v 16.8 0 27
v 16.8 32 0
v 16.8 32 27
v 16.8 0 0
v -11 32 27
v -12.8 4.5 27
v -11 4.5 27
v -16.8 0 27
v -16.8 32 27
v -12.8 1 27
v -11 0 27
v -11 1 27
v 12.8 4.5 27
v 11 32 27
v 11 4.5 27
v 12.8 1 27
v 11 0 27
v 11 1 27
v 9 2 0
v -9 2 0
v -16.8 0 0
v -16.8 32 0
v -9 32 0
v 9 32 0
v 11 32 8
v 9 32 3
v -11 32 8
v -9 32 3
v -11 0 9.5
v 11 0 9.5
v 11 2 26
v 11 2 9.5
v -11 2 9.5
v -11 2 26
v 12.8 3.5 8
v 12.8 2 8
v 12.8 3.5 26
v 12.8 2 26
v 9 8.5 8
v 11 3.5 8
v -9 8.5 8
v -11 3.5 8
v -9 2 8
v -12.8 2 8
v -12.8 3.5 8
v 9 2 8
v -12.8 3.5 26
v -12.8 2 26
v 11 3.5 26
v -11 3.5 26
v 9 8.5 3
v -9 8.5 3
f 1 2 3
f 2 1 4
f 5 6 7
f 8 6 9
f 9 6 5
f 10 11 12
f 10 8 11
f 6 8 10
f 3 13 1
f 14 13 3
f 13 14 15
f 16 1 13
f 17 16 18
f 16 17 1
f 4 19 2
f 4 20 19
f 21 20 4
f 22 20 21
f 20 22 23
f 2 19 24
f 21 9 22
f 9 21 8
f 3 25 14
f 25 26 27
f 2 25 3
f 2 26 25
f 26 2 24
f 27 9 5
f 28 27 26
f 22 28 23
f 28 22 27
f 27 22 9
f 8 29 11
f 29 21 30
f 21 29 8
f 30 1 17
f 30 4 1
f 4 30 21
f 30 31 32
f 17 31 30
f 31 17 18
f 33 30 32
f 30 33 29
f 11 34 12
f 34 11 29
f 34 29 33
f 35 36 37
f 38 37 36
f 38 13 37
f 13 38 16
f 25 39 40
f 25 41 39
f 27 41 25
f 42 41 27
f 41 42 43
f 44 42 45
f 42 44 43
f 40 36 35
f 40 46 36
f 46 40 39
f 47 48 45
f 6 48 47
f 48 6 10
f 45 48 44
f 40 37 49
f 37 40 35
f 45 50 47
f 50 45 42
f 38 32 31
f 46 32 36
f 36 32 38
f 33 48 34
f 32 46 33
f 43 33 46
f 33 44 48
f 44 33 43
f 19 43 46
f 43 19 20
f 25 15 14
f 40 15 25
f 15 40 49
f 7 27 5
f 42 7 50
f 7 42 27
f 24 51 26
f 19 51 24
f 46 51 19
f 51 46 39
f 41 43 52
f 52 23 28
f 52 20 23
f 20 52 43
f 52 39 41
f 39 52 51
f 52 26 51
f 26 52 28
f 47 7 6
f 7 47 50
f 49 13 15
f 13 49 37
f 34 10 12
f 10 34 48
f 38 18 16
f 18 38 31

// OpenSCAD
// PlatypusOne — slide-in camera test block (bench fixture for #40)
// One solid block. The camera board drops into edge grooves from the top,
// lens facing -Y (out the front window). No screws. Swap B0394/B0393/B0390 by
// lifting one out and dropping the next in.
// Board size: B0394 vendor drawing, 25 x 24 mm (FFC on a 25 mm edge), the
// same nominal used for the bench perception plate. Not yet calipered: check
// a board against board_w/board_h before printing.
//
// Render: openscad -o camera_test_block.stl camera_test_block.scad

board_w   = 25;     // across the slot (FFC edge)
board_h   = 24;     // slide direction
board_t   = 1.0;    // PCB thickness (nominal)

slot_t    = 1.5;    // groove width: board_t + FDM clearance; 1.4 if loose
side_gap  = 0.3;    // per side across the width
lip       = 1.5;    // how far the groove lips overlap each board edge
front_t   = 2.0;    // front wall in front of the board
rear_rib  = 2.5;    // groove back wall depth
floor_h   = 8.0;    // board bottom edge sits this high
grip      = 5.0;    // board top sticks out this much for pulling it
wall      = 4.0;    // side wall beyond the groove
depth     = 32;     // front-to-back, for a stable footprint
ffc_w     = 18;     // ribbon/connector opening
ffc_drop  = 6.5;    // drop hole depth (Y) from the slot front: connector + bend
tunnel_h  = 3.0;    // ribbon tunnel under the floor, out the back

slot_w  = board_w + 2 * side_gap;
win_w   = board_w - 2 * lip;
block_w = slot_w + 2 * wall;
block_h = floor_h + board_h - grip;
slot_y0 = front_t;                    // slot front face
slot_y1 = front_t + slot_t;           // slot back face

difference() {
    translate([-block_w/2, 0, 0]) cube([block_w, depth, block_h]);
    // front window, open to the top: lens / M12 holder / VCM clear
    translate([-win_w/2, -1, floor_h + lip]) cube([win_w, front_t + 2, block_h]);
    // board slot (full width incl. grooves), open to the top
    translate([-slot_w/2, slot_y0, floor_h]) cube([slot_w, slot_t, block_h]);
    // rear cavity behind the board, between the groove ribs, open top + back:
    // clears the back-side connector and parts and gives finger access
    translate([-win_w/2, slot_y1 - 0.01, floor_h]) cube([win_w, depth, block_h]);
    // ribbon exit: drops through the floor under the board, then runs out the
    // back in a tunnel under the floor (bridged; floor stays one piece)
    translate([-ffc_w/2, slot_y0, -1]) cube([ffc_w, ffc_drop, floor_h + 2]);
    translate([-ffc_w/2, slot_y0, -1]) cube([ffc_w, depth, tunnel_h + 1]);
    // chamfered lead-in at the slot mouth
    translate([0, slot_y0 + slot_t/2, block_h]) rotate([0, 90, 0])
        cylinder(d = slot_t + 2, h = slot_w, center = true, $fn = 4);
}
